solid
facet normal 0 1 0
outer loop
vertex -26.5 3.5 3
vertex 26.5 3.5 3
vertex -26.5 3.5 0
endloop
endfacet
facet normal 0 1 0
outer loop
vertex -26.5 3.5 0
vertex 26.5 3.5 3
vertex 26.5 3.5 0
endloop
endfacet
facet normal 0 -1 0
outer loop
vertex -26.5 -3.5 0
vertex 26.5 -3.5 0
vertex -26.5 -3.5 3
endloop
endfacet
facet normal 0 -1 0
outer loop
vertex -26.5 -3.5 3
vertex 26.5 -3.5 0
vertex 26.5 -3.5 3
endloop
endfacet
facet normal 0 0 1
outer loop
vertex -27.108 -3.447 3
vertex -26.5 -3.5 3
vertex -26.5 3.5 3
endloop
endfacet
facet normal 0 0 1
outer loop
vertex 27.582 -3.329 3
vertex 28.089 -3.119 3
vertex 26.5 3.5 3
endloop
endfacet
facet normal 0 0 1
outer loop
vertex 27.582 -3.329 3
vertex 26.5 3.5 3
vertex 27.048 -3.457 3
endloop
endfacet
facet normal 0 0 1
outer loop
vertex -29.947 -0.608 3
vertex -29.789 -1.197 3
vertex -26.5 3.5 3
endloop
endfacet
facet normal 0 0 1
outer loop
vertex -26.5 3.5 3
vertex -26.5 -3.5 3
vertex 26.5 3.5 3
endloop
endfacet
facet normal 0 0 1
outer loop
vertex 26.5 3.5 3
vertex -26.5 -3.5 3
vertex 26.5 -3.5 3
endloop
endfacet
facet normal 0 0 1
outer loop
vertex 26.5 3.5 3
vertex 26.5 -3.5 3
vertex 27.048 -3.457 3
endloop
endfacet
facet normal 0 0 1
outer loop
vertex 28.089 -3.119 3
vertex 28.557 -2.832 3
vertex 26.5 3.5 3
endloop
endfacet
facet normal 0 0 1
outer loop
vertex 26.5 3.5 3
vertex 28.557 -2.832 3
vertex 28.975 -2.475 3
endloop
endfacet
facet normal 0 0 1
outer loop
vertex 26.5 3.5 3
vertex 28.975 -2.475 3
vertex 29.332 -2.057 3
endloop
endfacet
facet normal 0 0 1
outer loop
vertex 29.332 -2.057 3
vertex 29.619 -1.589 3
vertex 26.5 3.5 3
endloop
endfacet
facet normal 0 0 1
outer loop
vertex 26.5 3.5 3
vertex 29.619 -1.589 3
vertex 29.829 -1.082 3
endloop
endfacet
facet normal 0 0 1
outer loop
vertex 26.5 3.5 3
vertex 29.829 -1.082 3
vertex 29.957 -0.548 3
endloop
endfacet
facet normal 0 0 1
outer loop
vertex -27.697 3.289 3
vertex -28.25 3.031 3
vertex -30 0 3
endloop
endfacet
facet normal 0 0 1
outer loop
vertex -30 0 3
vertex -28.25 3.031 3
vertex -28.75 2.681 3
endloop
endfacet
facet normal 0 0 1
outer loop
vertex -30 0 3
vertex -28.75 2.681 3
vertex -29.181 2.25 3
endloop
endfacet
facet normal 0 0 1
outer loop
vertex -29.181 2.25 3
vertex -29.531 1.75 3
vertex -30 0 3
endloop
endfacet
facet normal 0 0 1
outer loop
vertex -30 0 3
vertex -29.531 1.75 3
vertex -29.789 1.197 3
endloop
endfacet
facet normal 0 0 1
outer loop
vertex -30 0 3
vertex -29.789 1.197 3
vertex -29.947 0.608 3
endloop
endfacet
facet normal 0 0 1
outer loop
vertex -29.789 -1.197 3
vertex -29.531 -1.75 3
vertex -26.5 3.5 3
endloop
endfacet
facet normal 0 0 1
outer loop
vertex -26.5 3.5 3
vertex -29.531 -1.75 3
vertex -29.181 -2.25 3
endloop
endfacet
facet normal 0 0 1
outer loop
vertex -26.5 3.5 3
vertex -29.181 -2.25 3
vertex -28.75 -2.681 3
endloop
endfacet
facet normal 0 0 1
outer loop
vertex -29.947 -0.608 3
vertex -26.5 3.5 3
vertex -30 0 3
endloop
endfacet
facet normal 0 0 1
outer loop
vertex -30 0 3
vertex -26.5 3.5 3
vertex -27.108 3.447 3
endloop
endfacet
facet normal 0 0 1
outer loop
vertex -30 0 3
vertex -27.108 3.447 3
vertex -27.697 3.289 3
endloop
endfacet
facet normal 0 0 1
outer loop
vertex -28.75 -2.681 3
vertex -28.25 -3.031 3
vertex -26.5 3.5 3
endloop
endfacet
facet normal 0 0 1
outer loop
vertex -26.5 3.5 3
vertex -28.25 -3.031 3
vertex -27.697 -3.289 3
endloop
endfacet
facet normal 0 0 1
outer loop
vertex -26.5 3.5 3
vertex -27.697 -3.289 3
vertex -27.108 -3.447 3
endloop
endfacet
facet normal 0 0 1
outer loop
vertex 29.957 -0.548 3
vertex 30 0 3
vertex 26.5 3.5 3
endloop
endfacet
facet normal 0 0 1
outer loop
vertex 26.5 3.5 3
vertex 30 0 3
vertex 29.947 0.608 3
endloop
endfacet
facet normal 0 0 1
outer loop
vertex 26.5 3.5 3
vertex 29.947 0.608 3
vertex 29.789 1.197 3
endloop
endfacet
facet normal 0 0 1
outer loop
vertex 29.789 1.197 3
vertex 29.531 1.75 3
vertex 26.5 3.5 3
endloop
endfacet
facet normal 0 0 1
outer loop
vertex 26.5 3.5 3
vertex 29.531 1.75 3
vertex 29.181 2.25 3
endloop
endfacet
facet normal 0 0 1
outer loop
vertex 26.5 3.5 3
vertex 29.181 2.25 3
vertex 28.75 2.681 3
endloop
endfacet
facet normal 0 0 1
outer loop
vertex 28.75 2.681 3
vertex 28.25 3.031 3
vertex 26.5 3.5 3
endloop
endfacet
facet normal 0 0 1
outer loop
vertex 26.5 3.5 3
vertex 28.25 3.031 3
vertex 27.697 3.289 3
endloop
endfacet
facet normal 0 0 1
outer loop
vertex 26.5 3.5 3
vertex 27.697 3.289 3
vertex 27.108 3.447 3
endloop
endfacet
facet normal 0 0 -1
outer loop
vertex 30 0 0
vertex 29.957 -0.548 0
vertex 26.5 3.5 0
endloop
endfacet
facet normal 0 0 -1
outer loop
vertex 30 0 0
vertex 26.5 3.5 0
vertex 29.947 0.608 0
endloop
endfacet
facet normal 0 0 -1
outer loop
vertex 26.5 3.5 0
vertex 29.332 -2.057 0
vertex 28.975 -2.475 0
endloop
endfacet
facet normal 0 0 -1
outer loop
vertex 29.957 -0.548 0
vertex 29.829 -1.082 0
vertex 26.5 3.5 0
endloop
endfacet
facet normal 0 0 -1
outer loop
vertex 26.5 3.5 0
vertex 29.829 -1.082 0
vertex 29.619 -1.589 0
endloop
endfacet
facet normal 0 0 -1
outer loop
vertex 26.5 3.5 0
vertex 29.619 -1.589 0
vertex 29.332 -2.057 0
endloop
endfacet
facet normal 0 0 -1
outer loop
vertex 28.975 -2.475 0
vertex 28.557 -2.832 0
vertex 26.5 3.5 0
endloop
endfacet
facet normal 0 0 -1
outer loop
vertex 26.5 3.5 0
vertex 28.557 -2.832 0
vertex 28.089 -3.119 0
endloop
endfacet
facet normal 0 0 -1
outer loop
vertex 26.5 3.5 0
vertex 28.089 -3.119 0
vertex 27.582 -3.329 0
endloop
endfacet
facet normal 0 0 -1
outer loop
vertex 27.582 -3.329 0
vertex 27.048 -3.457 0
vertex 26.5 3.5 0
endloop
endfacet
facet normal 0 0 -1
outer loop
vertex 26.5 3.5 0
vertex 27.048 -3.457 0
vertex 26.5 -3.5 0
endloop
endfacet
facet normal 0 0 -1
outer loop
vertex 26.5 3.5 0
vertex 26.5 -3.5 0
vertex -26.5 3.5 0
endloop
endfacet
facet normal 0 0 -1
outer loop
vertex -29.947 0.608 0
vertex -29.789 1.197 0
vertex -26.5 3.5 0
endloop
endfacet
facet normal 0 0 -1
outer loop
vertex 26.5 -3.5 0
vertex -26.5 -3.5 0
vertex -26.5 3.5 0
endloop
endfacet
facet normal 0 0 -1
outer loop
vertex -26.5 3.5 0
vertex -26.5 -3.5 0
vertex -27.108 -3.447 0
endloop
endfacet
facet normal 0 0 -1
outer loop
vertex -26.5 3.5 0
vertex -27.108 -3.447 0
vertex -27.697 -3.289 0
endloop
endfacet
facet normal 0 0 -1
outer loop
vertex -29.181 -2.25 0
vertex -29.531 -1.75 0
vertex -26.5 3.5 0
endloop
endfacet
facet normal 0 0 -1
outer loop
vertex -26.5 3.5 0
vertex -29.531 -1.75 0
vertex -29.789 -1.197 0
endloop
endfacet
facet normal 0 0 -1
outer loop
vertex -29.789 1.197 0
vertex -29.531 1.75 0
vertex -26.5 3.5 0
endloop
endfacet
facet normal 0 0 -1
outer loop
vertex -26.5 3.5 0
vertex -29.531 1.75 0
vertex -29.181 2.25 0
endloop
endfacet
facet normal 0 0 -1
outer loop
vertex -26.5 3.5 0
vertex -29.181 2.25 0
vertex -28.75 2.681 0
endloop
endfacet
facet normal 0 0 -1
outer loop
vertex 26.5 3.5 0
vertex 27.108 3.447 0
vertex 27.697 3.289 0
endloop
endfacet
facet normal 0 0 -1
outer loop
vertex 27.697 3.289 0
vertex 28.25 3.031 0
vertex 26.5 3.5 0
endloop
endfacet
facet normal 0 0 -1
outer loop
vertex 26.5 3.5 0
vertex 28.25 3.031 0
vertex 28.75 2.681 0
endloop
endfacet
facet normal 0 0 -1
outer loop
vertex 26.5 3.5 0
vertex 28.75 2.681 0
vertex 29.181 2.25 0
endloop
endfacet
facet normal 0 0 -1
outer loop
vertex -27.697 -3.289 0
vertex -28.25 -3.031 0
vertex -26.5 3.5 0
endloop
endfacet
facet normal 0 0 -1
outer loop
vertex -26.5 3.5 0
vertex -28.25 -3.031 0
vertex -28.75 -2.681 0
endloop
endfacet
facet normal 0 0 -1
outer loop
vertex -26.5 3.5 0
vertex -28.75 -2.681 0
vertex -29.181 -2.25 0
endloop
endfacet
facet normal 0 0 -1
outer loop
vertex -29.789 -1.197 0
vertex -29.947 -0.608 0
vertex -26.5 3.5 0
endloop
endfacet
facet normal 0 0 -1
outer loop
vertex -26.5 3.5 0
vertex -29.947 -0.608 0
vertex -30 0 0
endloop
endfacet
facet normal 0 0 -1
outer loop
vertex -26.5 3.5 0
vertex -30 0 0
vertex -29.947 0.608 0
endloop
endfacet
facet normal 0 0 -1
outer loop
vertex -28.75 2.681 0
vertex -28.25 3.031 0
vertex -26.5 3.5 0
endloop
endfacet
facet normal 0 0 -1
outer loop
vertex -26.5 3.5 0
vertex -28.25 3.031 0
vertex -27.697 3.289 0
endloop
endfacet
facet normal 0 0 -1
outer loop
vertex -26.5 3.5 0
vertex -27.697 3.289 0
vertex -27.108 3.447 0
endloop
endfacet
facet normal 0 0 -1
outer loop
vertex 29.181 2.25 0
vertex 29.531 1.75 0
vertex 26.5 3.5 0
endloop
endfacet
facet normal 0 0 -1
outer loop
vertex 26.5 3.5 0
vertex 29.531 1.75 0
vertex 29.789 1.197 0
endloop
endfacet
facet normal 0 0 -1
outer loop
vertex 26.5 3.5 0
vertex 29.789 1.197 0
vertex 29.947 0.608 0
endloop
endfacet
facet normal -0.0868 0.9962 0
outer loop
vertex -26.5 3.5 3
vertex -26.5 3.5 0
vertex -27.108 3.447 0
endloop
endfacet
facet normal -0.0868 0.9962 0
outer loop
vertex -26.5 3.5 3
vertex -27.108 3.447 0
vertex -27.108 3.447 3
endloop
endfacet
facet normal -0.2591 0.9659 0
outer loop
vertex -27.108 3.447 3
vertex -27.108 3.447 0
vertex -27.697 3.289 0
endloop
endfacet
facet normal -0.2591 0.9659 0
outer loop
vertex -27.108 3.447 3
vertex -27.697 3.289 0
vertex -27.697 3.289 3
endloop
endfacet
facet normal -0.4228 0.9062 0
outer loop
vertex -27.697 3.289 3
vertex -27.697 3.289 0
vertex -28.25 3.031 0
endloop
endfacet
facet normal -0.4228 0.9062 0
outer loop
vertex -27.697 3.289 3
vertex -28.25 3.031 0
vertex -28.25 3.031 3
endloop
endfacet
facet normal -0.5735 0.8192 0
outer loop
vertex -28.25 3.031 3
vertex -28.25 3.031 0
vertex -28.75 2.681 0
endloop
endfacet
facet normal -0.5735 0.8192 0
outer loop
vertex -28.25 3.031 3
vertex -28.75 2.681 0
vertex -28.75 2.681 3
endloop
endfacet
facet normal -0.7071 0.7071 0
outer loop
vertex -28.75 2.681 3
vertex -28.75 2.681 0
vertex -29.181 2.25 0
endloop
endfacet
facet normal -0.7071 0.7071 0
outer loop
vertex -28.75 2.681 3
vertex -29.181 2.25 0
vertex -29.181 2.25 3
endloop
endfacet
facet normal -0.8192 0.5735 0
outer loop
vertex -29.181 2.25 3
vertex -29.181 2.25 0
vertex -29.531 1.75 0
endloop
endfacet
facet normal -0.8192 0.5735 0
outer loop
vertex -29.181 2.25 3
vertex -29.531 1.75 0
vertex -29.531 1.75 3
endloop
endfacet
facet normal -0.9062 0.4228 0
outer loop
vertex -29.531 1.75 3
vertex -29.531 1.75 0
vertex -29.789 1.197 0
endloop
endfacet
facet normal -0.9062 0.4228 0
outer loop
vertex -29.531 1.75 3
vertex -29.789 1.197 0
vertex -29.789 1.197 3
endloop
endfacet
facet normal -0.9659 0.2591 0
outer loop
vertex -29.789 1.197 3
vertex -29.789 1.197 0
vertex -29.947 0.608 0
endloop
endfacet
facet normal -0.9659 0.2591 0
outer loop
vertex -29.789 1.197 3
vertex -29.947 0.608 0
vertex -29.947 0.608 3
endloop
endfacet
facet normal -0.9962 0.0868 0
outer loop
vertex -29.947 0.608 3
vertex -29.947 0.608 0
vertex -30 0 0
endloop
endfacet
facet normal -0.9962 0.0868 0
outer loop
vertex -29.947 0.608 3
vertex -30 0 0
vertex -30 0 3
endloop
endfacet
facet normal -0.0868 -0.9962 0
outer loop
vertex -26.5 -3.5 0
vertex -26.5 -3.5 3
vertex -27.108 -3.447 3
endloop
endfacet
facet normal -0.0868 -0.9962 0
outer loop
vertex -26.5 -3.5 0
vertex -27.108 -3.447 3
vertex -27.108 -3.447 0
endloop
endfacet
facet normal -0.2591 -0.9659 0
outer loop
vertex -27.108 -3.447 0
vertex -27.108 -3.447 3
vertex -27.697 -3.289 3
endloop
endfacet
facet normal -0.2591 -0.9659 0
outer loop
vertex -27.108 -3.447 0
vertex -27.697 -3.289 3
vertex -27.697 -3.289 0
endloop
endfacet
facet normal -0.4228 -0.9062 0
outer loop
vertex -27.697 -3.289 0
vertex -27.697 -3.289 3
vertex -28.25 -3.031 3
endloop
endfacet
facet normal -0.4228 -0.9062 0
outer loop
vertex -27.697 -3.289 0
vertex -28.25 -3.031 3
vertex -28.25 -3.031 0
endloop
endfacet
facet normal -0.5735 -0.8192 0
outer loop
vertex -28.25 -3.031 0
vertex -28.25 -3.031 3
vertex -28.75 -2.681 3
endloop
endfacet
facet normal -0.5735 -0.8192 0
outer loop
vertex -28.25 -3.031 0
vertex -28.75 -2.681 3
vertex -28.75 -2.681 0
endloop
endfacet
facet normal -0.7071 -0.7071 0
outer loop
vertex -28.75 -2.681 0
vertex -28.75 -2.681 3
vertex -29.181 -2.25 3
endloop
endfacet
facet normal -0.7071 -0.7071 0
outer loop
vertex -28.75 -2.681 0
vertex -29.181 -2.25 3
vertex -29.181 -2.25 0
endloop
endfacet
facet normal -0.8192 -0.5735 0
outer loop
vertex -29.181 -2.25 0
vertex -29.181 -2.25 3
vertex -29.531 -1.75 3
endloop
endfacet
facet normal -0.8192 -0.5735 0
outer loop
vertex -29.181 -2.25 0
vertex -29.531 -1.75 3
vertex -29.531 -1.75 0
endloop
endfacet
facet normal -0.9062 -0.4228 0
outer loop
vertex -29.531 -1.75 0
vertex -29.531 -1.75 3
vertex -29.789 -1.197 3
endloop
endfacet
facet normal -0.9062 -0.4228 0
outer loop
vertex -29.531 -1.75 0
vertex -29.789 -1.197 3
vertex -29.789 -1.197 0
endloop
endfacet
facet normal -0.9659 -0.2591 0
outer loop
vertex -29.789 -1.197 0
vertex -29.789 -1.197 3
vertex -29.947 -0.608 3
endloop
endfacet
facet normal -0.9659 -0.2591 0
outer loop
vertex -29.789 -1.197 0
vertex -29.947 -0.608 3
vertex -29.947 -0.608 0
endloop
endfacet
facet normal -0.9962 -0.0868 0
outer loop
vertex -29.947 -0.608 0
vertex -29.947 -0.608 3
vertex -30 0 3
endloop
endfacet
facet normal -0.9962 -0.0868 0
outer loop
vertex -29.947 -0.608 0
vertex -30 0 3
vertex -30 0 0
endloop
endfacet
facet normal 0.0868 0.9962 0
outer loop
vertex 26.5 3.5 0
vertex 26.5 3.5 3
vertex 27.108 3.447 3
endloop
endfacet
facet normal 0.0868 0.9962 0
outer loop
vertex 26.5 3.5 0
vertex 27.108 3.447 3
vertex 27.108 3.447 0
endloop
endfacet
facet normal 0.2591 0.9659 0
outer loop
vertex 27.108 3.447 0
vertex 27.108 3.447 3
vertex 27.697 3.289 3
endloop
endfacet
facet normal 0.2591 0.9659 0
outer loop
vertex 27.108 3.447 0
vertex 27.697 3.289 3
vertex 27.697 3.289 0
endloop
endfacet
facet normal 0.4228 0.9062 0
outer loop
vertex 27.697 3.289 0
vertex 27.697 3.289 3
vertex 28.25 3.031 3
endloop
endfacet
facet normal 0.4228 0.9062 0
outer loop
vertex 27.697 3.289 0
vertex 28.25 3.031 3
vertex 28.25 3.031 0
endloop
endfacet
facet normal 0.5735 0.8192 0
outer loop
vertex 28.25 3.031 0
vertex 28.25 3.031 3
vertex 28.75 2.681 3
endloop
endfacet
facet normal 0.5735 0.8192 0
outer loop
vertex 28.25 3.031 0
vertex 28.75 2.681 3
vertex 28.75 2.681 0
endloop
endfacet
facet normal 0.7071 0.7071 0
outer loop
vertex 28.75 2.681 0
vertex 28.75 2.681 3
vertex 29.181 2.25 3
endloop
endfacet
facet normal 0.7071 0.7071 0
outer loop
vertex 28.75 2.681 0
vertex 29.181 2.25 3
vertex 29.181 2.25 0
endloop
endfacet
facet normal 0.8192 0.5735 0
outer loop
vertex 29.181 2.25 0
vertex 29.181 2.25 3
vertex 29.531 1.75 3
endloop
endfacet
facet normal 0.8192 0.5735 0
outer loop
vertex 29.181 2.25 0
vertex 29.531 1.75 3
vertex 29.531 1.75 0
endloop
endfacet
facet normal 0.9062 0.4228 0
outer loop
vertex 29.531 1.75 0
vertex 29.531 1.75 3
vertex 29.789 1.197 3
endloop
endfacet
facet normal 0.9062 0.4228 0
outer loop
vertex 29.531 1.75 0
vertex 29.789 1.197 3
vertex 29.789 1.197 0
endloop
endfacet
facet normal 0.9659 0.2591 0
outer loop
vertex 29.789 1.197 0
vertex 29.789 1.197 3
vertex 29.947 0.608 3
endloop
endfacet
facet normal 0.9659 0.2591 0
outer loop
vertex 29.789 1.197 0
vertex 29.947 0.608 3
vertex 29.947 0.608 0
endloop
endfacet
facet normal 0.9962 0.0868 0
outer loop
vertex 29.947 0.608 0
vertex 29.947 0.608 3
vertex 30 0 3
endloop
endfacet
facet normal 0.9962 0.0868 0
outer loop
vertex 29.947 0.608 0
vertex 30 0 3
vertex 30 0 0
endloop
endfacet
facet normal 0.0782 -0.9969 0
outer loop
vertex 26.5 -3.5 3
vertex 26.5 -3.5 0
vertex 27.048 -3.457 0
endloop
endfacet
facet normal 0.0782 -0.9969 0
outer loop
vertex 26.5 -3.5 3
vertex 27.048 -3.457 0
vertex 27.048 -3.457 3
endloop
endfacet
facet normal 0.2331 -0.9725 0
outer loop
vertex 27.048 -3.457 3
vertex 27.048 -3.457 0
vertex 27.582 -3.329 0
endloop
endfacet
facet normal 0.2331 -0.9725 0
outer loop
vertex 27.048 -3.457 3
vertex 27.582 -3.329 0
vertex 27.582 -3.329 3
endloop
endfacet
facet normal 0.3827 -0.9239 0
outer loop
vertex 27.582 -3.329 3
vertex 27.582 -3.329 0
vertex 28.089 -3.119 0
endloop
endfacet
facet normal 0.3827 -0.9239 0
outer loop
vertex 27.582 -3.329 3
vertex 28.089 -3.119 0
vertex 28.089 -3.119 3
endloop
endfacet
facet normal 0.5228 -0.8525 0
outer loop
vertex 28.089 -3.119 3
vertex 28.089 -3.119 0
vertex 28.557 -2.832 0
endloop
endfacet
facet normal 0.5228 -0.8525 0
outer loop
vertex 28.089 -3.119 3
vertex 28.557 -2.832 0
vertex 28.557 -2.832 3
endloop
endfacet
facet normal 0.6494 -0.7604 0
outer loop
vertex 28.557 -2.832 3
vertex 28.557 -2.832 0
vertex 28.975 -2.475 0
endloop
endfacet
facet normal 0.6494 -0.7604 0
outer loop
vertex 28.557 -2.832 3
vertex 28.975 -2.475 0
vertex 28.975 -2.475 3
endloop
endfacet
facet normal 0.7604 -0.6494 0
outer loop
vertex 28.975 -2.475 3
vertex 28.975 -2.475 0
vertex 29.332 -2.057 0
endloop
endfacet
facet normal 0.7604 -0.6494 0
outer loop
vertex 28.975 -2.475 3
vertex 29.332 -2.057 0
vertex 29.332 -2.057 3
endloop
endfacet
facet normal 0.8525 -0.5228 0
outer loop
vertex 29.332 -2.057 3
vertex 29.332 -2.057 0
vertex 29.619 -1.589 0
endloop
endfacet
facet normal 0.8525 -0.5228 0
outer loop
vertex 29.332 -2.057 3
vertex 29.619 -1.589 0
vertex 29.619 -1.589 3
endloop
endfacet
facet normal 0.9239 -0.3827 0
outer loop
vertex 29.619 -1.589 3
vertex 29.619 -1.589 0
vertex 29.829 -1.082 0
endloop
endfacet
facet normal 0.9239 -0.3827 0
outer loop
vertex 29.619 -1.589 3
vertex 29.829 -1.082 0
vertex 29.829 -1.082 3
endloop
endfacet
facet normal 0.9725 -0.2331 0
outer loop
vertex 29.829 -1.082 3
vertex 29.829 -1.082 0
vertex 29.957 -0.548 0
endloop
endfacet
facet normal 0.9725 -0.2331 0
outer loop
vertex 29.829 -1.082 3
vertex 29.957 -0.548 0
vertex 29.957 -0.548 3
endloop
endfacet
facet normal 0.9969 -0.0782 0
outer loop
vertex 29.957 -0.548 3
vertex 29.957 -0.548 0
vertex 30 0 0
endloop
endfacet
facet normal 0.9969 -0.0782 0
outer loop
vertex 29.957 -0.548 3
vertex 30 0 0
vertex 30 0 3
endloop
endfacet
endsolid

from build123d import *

# Parameters (mm, degrees)
SKETCH1_W           = 60
SKETCH1_H           = 7
BOSS_EXTRUDE1_DEPTH = 3
FILLET1_R           = 3.5


with BuildPart() as part:
    # Sketch1 → Boss-Extrude1 (new body)
    with BuildSketch(Plane.XY):
        Rectangle(SKETCH1_W, SKETCH1_H)
    extrude(amount=BOSS_EXTRUDE1_DEPTH)

    # Fillet1
    fillet1_edges = [part.edges().sort_by_distance(p)[0] for p in [
        (-30, -3.5, 1.5),
        (-30, 3.5, 1.5),
        (30, -3.5, 1.5),
        (30, 3.5, 1.5),
    ]]
    fillet(fillet1_edges, radius=FILLET1_R - 0.0001)  # a hair under: the kernel refuses the full size


solid = part.part
